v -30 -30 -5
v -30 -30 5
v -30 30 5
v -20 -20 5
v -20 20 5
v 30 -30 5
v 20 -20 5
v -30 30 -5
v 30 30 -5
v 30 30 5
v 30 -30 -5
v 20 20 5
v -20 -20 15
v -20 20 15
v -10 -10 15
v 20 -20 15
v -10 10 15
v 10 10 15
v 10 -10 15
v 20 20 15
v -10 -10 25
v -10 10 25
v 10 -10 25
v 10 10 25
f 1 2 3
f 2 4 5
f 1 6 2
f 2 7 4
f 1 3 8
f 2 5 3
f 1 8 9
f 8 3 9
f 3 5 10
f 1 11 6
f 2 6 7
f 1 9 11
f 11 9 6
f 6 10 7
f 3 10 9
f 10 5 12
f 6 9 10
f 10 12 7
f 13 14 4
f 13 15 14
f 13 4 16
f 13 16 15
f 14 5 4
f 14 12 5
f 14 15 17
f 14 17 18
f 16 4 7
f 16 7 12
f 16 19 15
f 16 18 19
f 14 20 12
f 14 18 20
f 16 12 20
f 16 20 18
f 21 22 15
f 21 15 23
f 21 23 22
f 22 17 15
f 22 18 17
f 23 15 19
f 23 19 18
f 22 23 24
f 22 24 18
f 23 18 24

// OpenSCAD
// 3段の階段状ピラミッド

// 1段目：底辺 60mm × 60mm × 高さ 10mm
translate([0, 0, 0])
    cube([60, 60, 10], center = true);

// 2段目：40mm × 40mm × 高さ 10mm
translate([0, 0, 10])
    cube([40, 40, 10], center = true);

// 3段目：20mm × 20mm × 高さ 10mm
translate([0, 0, 20])
    cube([20, 20, 10], center = true);
